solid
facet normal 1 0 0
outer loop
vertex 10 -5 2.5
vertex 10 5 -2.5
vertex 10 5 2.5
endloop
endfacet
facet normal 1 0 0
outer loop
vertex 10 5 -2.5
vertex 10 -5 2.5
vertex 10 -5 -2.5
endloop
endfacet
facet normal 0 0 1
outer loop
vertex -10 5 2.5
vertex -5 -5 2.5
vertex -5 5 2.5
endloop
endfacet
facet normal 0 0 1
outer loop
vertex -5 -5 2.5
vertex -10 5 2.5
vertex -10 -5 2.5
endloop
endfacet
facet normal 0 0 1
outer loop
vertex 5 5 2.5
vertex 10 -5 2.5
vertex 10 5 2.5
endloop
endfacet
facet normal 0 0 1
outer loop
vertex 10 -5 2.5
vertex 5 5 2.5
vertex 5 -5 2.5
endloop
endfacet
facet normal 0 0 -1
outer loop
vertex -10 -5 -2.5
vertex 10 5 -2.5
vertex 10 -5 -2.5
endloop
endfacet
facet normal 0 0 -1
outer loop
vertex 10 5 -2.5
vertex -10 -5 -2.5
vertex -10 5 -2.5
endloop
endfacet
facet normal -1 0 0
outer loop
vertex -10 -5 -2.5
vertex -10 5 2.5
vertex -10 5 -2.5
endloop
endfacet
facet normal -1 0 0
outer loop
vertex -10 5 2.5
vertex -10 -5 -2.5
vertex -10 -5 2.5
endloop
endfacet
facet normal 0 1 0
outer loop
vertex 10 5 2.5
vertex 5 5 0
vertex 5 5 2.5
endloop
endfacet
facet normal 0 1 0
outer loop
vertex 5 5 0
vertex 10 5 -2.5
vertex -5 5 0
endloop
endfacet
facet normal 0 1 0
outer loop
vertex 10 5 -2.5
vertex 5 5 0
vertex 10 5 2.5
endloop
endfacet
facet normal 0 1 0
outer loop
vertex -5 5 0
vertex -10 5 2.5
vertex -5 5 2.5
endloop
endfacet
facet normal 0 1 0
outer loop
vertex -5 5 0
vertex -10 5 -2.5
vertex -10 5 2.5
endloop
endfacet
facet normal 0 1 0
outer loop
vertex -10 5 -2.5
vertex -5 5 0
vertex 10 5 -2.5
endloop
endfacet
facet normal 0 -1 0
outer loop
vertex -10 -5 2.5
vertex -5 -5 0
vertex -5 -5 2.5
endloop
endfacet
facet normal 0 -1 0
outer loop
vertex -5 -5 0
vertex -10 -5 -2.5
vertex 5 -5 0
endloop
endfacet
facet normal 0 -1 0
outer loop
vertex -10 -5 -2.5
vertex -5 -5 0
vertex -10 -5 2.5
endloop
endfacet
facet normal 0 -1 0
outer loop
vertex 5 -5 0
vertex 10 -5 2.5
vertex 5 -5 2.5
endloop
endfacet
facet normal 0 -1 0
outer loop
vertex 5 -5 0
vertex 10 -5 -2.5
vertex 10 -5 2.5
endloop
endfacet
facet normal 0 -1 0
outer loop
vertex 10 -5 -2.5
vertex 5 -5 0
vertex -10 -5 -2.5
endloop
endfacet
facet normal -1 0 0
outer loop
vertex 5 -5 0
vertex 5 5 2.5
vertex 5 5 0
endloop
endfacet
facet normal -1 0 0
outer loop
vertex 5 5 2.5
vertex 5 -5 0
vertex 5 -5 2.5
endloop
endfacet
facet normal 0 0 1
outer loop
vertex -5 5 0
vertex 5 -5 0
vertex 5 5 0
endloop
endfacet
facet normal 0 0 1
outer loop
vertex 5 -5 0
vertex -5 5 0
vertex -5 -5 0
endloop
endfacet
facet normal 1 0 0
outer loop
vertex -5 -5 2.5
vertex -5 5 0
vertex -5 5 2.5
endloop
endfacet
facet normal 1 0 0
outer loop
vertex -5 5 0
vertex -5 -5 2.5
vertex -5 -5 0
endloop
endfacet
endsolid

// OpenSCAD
// Angular Connector Component
module angular_connector() {
    difference() {
        // Base block
        cube([20, 10, 5], center = true);
        
        // Step cut
        translate([0, 0, 2.5])
            cube([10, 10, 5], center = true);
    }
}

// Render the angular connector
angular_connector();
